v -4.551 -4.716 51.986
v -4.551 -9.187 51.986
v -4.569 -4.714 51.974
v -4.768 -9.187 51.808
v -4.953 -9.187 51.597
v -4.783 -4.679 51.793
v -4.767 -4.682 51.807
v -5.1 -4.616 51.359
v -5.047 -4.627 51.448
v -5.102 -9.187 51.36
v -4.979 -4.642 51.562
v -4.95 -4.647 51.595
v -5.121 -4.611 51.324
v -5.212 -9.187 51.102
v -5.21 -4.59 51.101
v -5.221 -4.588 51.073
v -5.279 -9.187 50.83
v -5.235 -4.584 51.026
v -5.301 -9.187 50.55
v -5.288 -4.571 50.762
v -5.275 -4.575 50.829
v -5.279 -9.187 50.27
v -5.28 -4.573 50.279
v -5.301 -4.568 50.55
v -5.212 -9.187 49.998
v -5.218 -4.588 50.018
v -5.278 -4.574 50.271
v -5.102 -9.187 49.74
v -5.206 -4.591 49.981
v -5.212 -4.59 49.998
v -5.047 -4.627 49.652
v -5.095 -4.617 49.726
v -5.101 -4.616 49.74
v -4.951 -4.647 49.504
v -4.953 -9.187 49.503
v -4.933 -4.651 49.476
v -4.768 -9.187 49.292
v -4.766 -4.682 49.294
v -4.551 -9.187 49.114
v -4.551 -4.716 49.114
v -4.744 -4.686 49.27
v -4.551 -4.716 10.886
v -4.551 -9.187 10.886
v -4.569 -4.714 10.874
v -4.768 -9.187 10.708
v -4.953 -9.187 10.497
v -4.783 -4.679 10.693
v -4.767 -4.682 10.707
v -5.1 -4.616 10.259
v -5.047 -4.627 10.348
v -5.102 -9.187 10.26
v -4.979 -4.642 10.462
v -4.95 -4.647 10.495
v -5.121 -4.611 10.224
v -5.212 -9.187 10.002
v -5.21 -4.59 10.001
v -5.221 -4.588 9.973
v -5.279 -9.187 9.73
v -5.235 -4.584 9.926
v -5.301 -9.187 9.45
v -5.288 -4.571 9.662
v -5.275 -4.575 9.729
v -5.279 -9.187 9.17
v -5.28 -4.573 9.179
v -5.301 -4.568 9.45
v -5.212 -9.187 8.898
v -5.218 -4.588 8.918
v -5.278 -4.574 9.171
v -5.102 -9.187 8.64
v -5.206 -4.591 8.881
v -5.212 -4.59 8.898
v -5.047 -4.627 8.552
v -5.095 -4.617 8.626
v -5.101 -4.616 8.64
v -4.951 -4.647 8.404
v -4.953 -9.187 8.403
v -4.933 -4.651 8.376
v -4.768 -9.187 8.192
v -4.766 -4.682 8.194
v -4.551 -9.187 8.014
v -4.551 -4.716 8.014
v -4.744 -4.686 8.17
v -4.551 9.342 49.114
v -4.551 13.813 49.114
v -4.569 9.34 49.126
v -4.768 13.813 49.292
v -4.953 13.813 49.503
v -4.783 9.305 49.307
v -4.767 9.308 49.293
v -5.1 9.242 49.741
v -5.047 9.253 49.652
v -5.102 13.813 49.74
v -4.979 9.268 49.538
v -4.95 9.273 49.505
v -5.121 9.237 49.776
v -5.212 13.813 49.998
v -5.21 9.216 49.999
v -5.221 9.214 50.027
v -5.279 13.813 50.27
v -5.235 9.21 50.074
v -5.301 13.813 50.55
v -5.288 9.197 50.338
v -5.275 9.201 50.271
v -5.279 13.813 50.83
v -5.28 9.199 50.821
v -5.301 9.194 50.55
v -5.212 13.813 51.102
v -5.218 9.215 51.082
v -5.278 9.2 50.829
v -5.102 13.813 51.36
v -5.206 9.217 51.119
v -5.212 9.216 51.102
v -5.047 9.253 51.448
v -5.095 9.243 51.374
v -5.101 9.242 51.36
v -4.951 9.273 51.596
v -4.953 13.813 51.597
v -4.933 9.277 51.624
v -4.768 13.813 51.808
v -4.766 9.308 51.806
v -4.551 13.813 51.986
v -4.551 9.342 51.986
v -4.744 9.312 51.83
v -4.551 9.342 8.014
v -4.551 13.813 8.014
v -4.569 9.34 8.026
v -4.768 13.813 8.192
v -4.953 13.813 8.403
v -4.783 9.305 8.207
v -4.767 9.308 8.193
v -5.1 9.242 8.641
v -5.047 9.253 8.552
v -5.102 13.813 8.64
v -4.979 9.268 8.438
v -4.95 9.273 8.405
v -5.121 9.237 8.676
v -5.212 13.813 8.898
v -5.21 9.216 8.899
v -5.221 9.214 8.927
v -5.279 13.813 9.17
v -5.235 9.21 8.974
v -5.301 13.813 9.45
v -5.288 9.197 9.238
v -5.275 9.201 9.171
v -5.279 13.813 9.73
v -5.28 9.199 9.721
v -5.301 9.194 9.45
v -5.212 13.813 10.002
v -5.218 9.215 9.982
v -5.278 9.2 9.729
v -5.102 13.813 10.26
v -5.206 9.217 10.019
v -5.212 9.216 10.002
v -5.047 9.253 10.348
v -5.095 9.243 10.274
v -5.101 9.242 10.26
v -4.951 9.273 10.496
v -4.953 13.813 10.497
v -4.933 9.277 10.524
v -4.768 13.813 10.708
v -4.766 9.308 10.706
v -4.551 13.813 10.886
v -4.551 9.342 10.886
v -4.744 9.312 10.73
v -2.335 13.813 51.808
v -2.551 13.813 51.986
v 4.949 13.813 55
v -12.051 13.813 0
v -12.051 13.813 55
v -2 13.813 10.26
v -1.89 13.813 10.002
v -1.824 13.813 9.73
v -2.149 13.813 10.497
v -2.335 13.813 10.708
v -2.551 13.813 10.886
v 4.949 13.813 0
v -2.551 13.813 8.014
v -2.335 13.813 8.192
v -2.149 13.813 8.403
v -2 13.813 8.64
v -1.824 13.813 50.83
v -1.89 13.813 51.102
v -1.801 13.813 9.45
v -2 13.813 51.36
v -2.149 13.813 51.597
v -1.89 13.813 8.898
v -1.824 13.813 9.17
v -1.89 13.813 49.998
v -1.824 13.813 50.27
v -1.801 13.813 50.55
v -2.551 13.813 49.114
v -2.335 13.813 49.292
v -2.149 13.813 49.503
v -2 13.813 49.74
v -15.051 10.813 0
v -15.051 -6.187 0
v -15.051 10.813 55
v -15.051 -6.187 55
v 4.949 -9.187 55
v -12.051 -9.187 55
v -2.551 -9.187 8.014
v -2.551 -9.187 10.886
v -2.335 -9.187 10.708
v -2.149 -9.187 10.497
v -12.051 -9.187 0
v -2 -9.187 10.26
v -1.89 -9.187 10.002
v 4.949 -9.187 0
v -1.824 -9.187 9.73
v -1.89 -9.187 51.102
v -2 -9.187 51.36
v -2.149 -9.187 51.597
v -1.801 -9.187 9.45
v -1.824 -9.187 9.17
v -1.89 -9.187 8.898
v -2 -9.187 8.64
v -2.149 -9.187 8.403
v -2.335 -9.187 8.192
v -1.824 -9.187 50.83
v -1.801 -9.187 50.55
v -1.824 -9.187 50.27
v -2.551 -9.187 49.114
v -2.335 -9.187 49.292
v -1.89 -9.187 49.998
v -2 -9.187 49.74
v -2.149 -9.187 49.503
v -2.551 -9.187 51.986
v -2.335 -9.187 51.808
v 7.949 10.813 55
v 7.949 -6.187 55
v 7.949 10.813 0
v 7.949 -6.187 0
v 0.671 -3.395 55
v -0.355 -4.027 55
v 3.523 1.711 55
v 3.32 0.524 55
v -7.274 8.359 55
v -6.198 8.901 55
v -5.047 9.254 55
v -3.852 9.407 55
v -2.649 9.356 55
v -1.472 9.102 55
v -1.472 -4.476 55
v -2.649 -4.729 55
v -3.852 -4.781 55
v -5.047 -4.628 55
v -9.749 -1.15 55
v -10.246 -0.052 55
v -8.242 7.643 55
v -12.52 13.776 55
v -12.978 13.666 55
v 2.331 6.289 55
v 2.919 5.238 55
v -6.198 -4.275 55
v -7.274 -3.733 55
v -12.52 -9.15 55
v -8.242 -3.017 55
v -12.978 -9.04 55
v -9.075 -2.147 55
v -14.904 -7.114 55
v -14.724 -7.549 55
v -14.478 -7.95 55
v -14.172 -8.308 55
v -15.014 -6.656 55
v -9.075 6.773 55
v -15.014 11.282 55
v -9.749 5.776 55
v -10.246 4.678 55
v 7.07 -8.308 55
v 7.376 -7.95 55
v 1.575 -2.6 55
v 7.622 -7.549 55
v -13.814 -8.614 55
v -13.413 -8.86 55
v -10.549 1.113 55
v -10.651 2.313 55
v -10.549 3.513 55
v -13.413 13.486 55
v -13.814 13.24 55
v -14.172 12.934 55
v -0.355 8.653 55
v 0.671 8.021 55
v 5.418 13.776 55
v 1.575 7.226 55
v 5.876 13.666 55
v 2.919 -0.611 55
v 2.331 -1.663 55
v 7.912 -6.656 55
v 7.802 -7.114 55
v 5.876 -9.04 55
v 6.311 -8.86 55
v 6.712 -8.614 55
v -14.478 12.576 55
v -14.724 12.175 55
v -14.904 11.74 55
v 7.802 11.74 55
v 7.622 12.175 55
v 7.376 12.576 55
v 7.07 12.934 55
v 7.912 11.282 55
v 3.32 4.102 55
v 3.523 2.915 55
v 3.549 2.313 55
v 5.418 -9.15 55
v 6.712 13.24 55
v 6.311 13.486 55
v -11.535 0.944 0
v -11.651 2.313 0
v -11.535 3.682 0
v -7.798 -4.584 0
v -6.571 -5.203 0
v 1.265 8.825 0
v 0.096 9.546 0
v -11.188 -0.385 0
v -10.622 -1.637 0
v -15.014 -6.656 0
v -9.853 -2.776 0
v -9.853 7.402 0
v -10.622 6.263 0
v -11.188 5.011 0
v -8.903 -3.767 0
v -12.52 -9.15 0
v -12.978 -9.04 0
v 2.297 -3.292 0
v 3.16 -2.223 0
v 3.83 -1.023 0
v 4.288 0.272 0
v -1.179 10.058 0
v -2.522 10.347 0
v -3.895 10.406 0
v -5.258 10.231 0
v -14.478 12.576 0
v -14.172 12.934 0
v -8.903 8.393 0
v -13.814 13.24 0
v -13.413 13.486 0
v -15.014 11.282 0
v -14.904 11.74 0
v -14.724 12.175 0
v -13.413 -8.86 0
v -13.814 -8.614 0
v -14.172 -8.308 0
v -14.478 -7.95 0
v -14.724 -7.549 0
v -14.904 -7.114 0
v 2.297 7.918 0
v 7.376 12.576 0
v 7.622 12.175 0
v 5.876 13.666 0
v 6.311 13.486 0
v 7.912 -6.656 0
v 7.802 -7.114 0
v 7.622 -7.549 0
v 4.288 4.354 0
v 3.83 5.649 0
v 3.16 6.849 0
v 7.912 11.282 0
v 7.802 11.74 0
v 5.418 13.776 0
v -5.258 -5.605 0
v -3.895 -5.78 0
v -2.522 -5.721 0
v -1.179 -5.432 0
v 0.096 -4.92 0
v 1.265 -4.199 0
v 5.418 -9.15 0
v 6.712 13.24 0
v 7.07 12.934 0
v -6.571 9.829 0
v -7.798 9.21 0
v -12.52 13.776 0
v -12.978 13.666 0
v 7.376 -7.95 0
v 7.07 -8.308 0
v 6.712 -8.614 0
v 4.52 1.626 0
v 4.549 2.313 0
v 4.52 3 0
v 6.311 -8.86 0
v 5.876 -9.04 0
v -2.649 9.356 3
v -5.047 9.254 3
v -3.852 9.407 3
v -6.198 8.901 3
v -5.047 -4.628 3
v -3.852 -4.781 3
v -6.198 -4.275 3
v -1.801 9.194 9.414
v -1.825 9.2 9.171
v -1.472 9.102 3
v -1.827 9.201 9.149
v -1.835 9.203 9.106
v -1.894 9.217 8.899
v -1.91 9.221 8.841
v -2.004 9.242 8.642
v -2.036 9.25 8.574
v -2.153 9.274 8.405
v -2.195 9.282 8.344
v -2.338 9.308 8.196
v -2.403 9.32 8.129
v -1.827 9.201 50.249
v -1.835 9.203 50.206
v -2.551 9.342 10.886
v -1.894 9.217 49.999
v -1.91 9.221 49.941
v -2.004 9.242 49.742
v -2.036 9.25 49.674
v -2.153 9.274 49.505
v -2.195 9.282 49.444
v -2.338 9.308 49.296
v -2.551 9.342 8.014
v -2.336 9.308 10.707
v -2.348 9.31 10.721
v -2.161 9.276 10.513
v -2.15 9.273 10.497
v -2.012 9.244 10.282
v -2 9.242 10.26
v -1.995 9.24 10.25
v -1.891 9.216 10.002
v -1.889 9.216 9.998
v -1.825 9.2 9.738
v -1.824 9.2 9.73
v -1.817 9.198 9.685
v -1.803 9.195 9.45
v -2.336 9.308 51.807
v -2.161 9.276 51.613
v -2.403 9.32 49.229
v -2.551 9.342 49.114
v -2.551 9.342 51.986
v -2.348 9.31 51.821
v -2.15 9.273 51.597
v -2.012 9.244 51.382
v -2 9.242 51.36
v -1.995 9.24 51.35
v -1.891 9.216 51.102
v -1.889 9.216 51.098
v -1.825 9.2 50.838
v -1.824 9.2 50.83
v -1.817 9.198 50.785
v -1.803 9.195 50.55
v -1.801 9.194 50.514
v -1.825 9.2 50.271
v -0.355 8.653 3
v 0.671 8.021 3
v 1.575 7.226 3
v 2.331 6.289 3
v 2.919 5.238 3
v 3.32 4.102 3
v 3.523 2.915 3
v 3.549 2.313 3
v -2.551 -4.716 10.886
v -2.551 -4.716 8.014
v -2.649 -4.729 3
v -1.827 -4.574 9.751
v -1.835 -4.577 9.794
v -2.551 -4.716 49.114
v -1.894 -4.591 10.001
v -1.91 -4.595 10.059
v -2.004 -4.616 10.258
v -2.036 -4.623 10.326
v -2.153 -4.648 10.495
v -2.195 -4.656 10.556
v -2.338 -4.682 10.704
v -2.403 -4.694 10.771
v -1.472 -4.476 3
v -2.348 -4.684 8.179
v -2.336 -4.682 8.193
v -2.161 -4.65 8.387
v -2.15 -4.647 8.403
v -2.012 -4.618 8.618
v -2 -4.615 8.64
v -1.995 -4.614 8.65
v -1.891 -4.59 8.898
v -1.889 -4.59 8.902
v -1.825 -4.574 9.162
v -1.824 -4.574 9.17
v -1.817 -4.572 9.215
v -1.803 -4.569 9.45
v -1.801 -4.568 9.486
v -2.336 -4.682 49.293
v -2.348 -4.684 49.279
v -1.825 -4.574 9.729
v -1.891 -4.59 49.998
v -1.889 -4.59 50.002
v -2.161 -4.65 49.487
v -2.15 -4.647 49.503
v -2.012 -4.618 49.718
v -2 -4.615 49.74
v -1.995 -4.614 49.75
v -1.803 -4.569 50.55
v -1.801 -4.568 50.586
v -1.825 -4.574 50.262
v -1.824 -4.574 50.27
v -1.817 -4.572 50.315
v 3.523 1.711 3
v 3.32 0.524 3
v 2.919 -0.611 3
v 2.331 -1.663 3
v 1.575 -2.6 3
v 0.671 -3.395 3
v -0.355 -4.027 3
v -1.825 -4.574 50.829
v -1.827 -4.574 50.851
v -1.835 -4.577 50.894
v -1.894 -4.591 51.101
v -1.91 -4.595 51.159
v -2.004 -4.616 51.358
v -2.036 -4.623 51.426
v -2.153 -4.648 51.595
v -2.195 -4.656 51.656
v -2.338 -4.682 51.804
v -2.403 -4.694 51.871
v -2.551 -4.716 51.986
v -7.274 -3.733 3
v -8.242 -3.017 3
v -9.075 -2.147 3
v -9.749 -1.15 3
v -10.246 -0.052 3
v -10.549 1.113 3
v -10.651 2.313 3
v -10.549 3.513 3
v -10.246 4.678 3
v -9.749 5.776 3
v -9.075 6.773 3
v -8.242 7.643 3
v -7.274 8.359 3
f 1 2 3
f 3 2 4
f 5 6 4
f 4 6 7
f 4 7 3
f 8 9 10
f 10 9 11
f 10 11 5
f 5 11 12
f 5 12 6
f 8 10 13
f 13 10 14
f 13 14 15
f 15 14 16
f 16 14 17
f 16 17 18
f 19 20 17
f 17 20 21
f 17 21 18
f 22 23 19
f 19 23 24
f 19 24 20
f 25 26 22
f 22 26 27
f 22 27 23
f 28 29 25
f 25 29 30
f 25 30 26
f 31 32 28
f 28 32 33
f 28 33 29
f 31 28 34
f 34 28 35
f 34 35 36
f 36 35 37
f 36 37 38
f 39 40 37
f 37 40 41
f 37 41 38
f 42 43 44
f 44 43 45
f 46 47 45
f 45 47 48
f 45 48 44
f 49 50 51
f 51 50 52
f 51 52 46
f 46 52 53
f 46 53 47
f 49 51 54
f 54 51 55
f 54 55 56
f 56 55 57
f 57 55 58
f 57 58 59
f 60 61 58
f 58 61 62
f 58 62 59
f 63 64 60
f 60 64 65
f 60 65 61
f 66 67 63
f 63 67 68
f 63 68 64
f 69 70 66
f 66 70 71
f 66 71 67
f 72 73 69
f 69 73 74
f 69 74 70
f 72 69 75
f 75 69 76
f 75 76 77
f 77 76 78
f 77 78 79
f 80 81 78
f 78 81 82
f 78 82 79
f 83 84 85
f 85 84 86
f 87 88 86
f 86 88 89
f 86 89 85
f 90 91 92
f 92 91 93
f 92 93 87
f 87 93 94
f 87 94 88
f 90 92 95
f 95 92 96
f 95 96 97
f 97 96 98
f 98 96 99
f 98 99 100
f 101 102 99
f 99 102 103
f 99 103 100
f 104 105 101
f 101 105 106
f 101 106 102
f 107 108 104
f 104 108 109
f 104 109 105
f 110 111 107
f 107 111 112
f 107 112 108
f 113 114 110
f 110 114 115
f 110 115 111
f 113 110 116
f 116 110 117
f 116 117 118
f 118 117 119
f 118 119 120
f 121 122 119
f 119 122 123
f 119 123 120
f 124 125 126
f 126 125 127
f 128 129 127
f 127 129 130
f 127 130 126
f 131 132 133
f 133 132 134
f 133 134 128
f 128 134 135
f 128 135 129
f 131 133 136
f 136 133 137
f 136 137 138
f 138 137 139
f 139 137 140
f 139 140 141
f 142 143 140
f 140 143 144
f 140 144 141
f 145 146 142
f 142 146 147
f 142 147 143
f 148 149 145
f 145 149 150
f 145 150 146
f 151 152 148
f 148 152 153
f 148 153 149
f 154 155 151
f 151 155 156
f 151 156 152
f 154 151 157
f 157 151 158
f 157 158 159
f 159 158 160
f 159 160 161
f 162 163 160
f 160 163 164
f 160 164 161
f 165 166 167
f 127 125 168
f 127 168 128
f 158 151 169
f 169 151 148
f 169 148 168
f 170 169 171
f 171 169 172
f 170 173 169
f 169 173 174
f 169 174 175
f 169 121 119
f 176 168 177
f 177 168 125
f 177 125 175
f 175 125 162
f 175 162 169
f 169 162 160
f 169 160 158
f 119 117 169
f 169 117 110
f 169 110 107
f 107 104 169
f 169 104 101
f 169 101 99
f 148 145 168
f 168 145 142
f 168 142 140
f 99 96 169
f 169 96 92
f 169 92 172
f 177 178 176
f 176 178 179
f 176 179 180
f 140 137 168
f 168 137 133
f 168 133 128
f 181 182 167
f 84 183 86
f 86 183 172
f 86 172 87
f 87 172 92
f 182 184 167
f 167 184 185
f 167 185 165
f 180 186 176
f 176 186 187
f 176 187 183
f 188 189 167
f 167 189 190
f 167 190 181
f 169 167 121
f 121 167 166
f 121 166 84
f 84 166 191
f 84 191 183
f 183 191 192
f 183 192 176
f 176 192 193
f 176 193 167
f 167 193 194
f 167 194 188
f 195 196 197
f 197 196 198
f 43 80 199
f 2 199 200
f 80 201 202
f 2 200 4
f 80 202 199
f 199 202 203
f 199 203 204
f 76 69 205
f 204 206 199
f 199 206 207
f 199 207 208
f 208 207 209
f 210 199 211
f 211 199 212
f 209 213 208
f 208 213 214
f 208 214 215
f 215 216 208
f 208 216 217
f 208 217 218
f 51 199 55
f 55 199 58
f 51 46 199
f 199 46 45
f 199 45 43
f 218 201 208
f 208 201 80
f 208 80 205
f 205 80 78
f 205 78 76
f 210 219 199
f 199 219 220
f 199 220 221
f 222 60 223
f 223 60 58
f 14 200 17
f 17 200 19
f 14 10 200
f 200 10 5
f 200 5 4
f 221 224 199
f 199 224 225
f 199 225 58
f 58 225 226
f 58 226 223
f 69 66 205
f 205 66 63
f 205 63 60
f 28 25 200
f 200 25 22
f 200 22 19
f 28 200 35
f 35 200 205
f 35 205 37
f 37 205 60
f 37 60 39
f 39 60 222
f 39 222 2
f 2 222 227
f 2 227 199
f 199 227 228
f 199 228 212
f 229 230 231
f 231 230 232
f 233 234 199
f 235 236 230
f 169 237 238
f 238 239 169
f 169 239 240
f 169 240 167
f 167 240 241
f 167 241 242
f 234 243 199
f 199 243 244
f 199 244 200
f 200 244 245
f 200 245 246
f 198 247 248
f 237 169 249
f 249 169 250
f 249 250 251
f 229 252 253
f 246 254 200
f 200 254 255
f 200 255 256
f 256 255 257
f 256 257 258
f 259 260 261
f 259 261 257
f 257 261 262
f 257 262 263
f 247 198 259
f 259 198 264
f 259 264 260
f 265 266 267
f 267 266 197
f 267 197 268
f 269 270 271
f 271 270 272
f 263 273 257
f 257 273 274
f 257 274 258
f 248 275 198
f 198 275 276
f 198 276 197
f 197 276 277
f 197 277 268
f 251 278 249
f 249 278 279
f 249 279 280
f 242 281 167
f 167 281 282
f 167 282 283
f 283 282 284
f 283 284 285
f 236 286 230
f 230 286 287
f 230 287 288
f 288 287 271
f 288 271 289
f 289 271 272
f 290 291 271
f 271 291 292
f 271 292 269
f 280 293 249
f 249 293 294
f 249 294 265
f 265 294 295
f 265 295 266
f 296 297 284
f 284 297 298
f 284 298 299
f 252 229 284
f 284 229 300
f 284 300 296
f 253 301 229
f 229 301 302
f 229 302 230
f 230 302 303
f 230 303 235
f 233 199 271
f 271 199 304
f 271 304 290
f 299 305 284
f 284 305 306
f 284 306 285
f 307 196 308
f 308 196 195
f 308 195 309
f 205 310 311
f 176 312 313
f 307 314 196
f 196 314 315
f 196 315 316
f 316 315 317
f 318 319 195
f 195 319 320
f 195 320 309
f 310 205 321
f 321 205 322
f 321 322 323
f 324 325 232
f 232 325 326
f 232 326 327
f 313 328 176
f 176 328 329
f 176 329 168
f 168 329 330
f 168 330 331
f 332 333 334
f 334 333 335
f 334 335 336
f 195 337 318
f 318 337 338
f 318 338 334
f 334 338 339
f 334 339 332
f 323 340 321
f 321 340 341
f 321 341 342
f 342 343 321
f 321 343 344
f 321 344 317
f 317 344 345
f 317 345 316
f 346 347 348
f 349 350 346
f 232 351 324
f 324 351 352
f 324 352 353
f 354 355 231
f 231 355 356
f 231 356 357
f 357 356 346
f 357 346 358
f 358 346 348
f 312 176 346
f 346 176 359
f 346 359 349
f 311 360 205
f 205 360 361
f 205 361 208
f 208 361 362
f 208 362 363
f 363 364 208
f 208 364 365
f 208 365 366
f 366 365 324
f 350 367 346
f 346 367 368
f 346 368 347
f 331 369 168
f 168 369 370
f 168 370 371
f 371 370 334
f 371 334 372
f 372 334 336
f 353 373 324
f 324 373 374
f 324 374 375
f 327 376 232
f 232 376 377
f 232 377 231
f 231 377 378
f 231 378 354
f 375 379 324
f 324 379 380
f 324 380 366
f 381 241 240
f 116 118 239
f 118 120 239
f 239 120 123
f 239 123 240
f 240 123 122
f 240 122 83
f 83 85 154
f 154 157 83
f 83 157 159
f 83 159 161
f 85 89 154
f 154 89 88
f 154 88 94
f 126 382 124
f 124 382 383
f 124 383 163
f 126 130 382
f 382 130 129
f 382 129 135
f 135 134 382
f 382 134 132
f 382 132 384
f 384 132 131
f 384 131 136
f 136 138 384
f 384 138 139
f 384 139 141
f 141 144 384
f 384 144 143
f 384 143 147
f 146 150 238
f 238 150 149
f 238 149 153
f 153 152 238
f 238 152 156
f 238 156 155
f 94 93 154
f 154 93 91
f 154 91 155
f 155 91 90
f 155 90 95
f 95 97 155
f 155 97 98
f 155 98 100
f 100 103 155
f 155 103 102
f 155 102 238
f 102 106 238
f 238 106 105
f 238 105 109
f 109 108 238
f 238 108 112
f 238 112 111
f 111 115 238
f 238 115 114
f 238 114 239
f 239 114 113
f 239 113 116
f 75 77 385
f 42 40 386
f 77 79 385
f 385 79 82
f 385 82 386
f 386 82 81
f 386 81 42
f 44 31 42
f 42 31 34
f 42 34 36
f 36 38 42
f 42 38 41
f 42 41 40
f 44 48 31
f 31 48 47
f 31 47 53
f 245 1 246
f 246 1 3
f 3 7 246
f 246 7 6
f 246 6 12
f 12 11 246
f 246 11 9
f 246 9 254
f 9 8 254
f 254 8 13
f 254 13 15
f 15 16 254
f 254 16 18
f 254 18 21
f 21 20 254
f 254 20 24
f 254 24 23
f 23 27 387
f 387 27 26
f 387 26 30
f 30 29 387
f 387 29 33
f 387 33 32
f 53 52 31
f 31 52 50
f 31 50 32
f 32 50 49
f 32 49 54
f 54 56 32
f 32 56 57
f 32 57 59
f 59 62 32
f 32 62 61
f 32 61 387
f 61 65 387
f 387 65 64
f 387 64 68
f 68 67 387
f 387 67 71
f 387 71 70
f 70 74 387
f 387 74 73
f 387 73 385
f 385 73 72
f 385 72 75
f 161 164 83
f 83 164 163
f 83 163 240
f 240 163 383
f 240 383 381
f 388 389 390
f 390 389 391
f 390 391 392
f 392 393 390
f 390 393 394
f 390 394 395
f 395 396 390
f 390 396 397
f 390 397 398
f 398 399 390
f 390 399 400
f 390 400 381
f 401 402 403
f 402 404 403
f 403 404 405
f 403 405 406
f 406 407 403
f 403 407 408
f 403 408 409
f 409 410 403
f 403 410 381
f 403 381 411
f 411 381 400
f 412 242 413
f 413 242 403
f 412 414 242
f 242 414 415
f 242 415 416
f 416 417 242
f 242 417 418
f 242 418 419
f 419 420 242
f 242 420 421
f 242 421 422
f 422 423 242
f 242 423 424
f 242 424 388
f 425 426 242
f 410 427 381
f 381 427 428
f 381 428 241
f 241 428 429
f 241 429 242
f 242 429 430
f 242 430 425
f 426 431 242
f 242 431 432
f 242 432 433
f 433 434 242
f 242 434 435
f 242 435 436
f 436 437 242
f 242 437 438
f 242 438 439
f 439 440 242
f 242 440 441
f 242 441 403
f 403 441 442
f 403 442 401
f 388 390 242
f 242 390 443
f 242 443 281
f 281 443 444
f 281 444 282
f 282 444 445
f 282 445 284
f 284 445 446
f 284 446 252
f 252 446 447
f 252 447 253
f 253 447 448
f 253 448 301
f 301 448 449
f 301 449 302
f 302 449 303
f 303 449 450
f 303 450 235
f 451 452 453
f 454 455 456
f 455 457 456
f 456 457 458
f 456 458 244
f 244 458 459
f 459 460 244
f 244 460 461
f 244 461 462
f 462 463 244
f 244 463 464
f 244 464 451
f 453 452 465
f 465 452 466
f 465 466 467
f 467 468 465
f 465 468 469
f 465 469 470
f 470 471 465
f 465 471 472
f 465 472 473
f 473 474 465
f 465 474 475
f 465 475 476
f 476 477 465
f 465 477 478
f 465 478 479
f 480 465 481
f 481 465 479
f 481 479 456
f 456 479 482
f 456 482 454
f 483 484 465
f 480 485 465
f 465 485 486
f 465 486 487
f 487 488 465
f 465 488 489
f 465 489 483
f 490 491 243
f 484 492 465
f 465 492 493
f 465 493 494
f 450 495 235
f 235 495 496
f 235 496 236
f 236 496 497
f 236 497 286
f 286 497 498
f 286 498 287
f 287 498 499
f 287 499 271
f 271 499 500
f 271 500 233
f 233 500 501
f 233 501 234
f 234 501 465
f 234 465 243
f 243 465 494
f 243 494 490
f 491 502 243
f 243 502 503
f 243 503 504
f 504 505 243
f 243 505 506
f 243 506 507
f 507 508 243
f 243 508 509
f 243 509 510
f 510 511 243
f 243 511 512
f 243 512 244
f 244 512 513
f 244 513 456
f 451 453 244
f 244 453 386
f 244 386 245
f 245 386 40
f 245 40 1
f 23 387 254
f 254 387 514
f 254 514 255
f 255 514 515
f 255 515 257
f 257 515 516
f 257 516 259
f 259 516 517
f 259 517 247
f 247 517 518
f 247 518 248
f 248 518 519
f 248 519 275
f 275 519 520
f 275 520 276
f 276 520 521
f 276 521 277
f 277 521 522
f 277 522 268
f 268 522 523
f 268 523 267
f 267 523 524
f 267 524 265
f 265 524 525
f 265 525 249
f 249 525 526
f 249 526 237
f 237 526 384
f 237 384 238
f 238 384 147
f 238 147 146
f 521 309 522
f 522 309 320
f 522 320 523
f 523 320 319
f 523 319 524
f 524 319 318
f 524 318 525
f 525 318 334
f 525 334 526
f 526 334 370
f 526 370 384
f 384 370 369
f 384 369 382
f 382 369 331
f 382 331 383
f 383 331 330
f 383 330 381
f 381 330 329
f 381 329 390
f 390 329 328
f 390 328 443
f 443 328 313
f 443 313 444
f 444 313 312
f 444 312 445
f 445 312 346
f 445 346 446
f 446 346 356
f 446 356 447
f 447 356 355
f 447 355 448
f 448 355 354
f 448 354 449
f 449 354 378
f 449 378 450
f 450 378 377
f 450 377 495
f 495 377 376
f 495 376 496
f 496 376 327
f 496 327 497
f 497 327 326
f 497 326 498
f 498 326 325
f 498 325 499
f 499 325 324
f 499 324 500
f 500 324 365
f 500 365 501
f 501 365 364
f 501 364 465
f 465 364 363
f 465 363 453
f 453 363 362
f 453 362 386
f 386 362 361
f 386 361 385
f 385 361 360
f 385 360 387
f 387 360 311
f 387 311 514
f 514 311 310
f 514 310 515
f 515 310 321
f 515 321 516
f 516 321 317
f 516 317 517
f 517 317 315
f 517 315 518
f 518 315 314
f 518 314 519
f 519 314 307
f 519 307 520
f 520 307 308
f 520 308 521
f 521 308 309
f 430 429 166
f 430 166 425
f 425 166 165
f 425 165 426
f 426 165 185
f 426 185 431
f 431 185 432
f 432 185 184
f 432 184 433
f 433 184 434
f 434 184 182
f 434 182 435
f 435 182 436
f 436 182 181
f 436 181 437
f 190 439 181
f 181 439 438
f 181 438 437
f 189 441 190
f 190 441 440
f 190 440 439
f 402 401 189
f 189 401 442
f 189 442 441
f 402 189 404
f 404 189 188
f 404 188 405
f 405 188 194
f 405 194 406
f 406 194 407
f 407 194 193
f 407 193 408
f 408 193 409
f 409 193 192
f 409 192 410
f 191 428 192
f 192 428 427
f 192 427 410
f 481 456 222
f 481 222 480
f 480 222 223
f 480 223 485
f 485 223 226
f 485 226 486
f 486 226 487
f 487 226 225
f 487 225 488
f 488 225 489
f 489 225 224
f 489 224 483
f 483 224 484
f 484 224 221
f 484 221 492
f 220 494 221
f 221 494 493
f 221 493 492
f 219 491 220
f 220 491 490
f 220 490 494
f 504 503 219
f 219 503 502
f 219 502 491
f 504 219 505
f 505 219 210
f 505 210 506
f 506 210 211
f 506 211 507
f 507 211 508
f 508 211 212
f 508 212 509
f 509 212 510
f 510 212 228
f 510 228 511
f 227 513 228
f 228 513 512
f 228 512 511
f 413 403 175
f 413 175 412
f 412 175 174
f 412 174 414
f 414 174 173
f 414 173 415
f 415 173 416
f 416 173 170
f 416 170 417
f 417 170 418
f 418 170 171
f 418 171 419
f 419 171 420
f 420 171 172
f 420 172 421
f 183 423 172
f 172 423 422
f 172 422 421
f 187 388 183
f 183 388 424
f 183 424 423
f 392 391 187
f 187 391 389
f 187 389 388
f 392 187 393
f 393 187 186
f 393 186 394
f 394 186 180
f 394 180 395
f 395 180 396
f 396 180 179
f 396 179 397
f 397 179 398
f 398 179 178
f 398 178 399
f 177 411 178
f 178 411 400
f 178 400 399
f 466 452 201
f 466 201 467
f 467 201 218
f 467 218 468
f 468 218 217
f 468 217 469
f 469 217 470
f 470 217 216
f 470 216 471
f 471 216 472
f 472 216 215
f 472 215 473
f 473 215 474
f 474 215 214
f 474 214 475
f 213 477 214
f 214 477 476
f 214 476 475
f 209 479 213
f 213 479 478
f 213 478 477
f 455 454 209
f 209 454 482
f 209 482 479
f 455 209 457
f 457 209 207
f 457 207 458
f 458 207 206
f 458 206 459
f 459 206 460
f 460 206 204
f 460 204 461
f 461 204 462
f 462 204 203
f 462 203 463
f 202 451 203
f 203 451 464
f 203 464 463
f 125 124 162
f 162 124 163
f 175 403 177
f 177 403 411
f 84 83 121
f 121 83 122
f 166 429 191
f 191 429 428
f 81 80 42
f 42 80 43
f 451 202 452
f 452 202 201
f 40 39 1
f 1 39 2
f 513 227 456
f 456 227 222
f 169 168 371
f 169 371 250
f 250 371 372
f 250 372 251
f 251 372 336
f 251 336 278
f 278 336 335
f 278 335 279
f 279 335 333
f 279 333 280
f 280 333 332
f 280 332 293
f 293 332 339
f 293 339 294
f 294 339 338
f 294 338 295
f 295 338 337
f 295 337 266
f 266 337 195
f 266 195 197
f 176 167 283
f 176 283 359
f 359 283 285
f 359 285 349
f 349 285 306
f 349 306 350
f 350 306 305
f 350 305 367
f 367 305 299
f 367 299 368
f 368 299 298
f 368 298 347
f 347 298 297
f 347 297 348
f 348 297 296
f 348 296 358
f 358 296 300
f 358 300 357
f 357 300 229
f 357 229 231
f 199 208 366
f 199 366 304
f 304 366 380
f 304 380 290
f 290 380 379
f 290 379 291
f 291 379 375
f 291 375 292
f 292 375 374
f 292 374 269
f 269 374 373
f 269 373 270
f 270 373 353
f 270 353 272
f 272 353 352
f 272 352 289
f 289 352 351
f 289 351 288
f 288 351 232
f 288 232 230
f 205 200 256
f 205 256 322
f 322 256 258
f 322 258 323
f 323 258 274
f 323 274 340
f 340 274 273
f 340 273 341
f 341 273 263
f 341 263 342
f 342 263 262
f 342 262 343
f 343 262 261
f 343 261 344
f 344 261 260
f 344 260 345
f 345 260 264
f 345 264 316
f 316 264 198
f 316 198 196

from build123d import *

# Parameters (mm, degrees)
SCHIZZO1_W                        = 23
SCHIZZO1_H                        = 23
ESTRUSIONE_ESTRUSIONE1_DEPTH      = 55
TAGLIO_ESTRUSIONE12_REACH         = 60.671
SCHIZZO18_R                       = 7.1
SMUSSO4_SIZE                      = 1
SMUSSO4_SIZE2                     = 3
SCHIZZO19_R                       = 1.75
TAGLIO_ESTRUSIONE13_DEPTH         = 62.486055435
ESTRUSIONE_ESTRUSIONE2_REACH      = 63.486
ESTRUSIONE_ESTRUSIONE2_END_RADIUS = 7.1
SCHIZZO20_W                       = 2
SCHIZZO20_H                       = 3.5
ESTRUSIONE_ESTRUSIONE3_REACH      = 63.486
ESTRUSIONE_ESTRUSIONE3_END_RADIUS = 7.1
SCHIZZO21_W                       = 2
SCHIZZO21_H                       = 3.5
RACCORDO1_R                       = 3


with BuildPart() as part:
    # Schizzo1 → Estrusione-Estrusione1 (new body)
    with BuildSketch(Plane.XY):
        with Locations((-3.551080126, 2.313028552)):
            Rectangle(SCHIZZO1_W, SCHIZZO1_H)
    extrude(amount=ESTRUSIONE_ESTRUSIONE1_DEPTH)

    # Schizzo18 → Taglio-Estrusione12 (cut, up to next)
    with BuildSketch(Plane(origin=(0, 0, 0), x_dir=(-1, 0, 0), z_dir=(0, 0, -1)), mode=Mode.PRIVATE) as taglio_estrusione12_sk1:
        with Locations((3.551080126, 2.313028552)):
            Circle(SCHIZZO18_R)
    taglio_estrusione12_tool1 = extrude(taglio_estrusione12_sk1.sketch, amount=-TAGLIO_ESTRUSIONE12_REACH, mode=Mode.PRIVATE) & part.part
    add(taglio_estrusione12_tool1.solids().sort_by_distance((-3.55108, 2.313029, 0))[0], mode=Mode.SUBTRACT)

    # Smusso4
    smusso4_edges = [part.edges().sort_by_distance(p)[0] for p in [
        (3.548919874, 2.313028552, 0),
    ]]
    smusso4_side = [part.faces().sort_by_distance(p)[0] for p in [
        (-3.551080126, 13.487759433, 0),
    ]]
    chamfer(smusso4_edges, length=SMUSSO4_SIZE, length2=SMUSSO4_SIZE2, reference=smusso4_side[0])

    # Schizzo19 → Taglio-Estrusione13 (cut, through all)
    with BuildSketch(Plane(origin=(0, 13.813028552, 0), x_dir=(1, 0, 0), z_dir=(0, 1, 0))):
        with Locations(Location((-3.551080126, -50.55, 0), (0, 0, 180))):
            Circle(SCHIZZO19_R)
        with Locations(Location((-3.551080126, -9.45, 0), (0, 0, 180))):
            Circle(SCHIZZO19_R)
    extrude(amount=-TAGLIO_ESTRUSIONE13_DEPTH, mode=Mode.SUBTRACT)

    # Estrusione-Estrusione2: up to this cylinder (the profile starts outside it)
    estrusione_estrusione2_end = Plane(origin=(-3.551080126, 2.313028552, 30), z_dir=(0, 0, -1)) * Cylinder(ESTRUSIONE_ESTRUSIONE2_END_RADIUS, 183.272, mode=Mode.PRIVATE)
    # Schizzo20 → Estrusione-Estrusione2 (add, up to the surface)
    with BuildSketch(Plane(origin=(0, 13.813028552, 0), x_dir=(1, 0, 0), z_dir=(0, 1, 0)), mode=Mode.PRIVATE) as estrusione_estrusione2_sk1:
        with Locations((-3.551080126, -50.55)):
            Rectangle(SCHIZZO20_W, SCHIZZO20_H)
    estrusione_estrusione2_tool1 = extrude(estrusione_estrusione2_sk1.sketch, amount=-ESTRUSIONE_ESTRUSIONE2_REACH, mode=Mode.PRIVATE) - estrusione_estrusione2_end
    add(estrusione_estrusione2_tool1.solids().sort_by_distance((-3.55108, 13.813029, 50.55))[0])
    # Schizzo20 → Estrusione-Estrusione2 (add, up to the surface)
    with BuildSketch(Plane(origin=(0, 13.813028552, 0), x_dir=(1, 0, 0), z_dir=(0, 1, 0)), mode=Mode.PRIVATE) as estrusione_estrusione2_sk2:
        with Locations((-3.551080126, -9.45)):
            Rectangle(SCHIZZO20_W, SCHIZZO20_H)
    estrusione_estrusione2_tool2 = extrude(estrusione_estrusione2_sk2.sketch, amount=-ESTRUSIONE_ESTRUSIONE2_REACH, mode=Mode.PRIVATE) - estrusione_estrusione2_end
    add(estrusione_estrusione2_tool2.solids().sort_by_distance((-3.55108, 13.813029, 9.45))[0])

    # Estrusione-Estrusione3: up to this cylinder (the profile starts outside it)
    estrusione_estrusione3_end = Plane(origin=(-3.551080126, 2.313028552, 30), z_dir=(0, 0, -1)) * Cylinder(ESTRUSIONE_ESTRUSIONE3_END_RADIUS, 183.272, mode=Mode.PRIVATE)
    # Schizzo21 → Estrusione-Estrusione3 (add, up to the surface)
    with BuildSketch(Plane.XZ.offset(9.186971448), mode=Mode.PRIVATE) as estrusione_estrusione3_sk1:
        with Locations((-3.551080126, 9.45)):
            Rectangle(SCHIZZO21_W, SCHIZZO21_H)
    estrusione_estrusione3_tool1 = extrude(estrusione_estrusione3_sk1.sketch, amount=-ESTRUSIONE_ESTRUSIONE3_REACH, mode=Mode.PRIVATE) - estrusione_estrusione3_end
    add(estrusione_estrusione3_tool1.solids().sort_by_distance((-3.55108, -9.186971, 9.45))[0])
    # Schizzo21 → Estrusione-Estrusione3 (add, up to the surface)
    with BuildSketch(Plane.XZ.offset(9.186971448), mode=Mode.PRIVATE) as estrusione_estrusione3_sk2:
        with Locations((-3.551080126, 50.55)):
            Rectangle(SCHIZZO21_W, SCHIZZO21_H)
    estrusione_estrusione3_tool2 = extrude(estrusione_estrusione3_sk2.sketch, amount=-ESTRUSIONE_ESTRUSIONE3_REACH, mode=Mode.PRIVATE) - estrusione_estrusione3_end
    add(estrusione_estrusione3_tool2.solids().sort_by_distance((-3.55108, -9.186971, 50.55))[0])

    # Raccordo1
    raccordo1_edges = [part.edges().sort_by_distance(p)[0] for p in [
        (7.948919874, 13.813028552, 27.5),
        (7.948919874, -9.186971448, 27.5),
        (-15.051080126, -9.186971448, 27.5),
        (-15.051080126, 13.813028552, 27.5),
    ]]
    fillet(raccordo1_edges, radius=RACCORDO1_R)


solid = part.part
